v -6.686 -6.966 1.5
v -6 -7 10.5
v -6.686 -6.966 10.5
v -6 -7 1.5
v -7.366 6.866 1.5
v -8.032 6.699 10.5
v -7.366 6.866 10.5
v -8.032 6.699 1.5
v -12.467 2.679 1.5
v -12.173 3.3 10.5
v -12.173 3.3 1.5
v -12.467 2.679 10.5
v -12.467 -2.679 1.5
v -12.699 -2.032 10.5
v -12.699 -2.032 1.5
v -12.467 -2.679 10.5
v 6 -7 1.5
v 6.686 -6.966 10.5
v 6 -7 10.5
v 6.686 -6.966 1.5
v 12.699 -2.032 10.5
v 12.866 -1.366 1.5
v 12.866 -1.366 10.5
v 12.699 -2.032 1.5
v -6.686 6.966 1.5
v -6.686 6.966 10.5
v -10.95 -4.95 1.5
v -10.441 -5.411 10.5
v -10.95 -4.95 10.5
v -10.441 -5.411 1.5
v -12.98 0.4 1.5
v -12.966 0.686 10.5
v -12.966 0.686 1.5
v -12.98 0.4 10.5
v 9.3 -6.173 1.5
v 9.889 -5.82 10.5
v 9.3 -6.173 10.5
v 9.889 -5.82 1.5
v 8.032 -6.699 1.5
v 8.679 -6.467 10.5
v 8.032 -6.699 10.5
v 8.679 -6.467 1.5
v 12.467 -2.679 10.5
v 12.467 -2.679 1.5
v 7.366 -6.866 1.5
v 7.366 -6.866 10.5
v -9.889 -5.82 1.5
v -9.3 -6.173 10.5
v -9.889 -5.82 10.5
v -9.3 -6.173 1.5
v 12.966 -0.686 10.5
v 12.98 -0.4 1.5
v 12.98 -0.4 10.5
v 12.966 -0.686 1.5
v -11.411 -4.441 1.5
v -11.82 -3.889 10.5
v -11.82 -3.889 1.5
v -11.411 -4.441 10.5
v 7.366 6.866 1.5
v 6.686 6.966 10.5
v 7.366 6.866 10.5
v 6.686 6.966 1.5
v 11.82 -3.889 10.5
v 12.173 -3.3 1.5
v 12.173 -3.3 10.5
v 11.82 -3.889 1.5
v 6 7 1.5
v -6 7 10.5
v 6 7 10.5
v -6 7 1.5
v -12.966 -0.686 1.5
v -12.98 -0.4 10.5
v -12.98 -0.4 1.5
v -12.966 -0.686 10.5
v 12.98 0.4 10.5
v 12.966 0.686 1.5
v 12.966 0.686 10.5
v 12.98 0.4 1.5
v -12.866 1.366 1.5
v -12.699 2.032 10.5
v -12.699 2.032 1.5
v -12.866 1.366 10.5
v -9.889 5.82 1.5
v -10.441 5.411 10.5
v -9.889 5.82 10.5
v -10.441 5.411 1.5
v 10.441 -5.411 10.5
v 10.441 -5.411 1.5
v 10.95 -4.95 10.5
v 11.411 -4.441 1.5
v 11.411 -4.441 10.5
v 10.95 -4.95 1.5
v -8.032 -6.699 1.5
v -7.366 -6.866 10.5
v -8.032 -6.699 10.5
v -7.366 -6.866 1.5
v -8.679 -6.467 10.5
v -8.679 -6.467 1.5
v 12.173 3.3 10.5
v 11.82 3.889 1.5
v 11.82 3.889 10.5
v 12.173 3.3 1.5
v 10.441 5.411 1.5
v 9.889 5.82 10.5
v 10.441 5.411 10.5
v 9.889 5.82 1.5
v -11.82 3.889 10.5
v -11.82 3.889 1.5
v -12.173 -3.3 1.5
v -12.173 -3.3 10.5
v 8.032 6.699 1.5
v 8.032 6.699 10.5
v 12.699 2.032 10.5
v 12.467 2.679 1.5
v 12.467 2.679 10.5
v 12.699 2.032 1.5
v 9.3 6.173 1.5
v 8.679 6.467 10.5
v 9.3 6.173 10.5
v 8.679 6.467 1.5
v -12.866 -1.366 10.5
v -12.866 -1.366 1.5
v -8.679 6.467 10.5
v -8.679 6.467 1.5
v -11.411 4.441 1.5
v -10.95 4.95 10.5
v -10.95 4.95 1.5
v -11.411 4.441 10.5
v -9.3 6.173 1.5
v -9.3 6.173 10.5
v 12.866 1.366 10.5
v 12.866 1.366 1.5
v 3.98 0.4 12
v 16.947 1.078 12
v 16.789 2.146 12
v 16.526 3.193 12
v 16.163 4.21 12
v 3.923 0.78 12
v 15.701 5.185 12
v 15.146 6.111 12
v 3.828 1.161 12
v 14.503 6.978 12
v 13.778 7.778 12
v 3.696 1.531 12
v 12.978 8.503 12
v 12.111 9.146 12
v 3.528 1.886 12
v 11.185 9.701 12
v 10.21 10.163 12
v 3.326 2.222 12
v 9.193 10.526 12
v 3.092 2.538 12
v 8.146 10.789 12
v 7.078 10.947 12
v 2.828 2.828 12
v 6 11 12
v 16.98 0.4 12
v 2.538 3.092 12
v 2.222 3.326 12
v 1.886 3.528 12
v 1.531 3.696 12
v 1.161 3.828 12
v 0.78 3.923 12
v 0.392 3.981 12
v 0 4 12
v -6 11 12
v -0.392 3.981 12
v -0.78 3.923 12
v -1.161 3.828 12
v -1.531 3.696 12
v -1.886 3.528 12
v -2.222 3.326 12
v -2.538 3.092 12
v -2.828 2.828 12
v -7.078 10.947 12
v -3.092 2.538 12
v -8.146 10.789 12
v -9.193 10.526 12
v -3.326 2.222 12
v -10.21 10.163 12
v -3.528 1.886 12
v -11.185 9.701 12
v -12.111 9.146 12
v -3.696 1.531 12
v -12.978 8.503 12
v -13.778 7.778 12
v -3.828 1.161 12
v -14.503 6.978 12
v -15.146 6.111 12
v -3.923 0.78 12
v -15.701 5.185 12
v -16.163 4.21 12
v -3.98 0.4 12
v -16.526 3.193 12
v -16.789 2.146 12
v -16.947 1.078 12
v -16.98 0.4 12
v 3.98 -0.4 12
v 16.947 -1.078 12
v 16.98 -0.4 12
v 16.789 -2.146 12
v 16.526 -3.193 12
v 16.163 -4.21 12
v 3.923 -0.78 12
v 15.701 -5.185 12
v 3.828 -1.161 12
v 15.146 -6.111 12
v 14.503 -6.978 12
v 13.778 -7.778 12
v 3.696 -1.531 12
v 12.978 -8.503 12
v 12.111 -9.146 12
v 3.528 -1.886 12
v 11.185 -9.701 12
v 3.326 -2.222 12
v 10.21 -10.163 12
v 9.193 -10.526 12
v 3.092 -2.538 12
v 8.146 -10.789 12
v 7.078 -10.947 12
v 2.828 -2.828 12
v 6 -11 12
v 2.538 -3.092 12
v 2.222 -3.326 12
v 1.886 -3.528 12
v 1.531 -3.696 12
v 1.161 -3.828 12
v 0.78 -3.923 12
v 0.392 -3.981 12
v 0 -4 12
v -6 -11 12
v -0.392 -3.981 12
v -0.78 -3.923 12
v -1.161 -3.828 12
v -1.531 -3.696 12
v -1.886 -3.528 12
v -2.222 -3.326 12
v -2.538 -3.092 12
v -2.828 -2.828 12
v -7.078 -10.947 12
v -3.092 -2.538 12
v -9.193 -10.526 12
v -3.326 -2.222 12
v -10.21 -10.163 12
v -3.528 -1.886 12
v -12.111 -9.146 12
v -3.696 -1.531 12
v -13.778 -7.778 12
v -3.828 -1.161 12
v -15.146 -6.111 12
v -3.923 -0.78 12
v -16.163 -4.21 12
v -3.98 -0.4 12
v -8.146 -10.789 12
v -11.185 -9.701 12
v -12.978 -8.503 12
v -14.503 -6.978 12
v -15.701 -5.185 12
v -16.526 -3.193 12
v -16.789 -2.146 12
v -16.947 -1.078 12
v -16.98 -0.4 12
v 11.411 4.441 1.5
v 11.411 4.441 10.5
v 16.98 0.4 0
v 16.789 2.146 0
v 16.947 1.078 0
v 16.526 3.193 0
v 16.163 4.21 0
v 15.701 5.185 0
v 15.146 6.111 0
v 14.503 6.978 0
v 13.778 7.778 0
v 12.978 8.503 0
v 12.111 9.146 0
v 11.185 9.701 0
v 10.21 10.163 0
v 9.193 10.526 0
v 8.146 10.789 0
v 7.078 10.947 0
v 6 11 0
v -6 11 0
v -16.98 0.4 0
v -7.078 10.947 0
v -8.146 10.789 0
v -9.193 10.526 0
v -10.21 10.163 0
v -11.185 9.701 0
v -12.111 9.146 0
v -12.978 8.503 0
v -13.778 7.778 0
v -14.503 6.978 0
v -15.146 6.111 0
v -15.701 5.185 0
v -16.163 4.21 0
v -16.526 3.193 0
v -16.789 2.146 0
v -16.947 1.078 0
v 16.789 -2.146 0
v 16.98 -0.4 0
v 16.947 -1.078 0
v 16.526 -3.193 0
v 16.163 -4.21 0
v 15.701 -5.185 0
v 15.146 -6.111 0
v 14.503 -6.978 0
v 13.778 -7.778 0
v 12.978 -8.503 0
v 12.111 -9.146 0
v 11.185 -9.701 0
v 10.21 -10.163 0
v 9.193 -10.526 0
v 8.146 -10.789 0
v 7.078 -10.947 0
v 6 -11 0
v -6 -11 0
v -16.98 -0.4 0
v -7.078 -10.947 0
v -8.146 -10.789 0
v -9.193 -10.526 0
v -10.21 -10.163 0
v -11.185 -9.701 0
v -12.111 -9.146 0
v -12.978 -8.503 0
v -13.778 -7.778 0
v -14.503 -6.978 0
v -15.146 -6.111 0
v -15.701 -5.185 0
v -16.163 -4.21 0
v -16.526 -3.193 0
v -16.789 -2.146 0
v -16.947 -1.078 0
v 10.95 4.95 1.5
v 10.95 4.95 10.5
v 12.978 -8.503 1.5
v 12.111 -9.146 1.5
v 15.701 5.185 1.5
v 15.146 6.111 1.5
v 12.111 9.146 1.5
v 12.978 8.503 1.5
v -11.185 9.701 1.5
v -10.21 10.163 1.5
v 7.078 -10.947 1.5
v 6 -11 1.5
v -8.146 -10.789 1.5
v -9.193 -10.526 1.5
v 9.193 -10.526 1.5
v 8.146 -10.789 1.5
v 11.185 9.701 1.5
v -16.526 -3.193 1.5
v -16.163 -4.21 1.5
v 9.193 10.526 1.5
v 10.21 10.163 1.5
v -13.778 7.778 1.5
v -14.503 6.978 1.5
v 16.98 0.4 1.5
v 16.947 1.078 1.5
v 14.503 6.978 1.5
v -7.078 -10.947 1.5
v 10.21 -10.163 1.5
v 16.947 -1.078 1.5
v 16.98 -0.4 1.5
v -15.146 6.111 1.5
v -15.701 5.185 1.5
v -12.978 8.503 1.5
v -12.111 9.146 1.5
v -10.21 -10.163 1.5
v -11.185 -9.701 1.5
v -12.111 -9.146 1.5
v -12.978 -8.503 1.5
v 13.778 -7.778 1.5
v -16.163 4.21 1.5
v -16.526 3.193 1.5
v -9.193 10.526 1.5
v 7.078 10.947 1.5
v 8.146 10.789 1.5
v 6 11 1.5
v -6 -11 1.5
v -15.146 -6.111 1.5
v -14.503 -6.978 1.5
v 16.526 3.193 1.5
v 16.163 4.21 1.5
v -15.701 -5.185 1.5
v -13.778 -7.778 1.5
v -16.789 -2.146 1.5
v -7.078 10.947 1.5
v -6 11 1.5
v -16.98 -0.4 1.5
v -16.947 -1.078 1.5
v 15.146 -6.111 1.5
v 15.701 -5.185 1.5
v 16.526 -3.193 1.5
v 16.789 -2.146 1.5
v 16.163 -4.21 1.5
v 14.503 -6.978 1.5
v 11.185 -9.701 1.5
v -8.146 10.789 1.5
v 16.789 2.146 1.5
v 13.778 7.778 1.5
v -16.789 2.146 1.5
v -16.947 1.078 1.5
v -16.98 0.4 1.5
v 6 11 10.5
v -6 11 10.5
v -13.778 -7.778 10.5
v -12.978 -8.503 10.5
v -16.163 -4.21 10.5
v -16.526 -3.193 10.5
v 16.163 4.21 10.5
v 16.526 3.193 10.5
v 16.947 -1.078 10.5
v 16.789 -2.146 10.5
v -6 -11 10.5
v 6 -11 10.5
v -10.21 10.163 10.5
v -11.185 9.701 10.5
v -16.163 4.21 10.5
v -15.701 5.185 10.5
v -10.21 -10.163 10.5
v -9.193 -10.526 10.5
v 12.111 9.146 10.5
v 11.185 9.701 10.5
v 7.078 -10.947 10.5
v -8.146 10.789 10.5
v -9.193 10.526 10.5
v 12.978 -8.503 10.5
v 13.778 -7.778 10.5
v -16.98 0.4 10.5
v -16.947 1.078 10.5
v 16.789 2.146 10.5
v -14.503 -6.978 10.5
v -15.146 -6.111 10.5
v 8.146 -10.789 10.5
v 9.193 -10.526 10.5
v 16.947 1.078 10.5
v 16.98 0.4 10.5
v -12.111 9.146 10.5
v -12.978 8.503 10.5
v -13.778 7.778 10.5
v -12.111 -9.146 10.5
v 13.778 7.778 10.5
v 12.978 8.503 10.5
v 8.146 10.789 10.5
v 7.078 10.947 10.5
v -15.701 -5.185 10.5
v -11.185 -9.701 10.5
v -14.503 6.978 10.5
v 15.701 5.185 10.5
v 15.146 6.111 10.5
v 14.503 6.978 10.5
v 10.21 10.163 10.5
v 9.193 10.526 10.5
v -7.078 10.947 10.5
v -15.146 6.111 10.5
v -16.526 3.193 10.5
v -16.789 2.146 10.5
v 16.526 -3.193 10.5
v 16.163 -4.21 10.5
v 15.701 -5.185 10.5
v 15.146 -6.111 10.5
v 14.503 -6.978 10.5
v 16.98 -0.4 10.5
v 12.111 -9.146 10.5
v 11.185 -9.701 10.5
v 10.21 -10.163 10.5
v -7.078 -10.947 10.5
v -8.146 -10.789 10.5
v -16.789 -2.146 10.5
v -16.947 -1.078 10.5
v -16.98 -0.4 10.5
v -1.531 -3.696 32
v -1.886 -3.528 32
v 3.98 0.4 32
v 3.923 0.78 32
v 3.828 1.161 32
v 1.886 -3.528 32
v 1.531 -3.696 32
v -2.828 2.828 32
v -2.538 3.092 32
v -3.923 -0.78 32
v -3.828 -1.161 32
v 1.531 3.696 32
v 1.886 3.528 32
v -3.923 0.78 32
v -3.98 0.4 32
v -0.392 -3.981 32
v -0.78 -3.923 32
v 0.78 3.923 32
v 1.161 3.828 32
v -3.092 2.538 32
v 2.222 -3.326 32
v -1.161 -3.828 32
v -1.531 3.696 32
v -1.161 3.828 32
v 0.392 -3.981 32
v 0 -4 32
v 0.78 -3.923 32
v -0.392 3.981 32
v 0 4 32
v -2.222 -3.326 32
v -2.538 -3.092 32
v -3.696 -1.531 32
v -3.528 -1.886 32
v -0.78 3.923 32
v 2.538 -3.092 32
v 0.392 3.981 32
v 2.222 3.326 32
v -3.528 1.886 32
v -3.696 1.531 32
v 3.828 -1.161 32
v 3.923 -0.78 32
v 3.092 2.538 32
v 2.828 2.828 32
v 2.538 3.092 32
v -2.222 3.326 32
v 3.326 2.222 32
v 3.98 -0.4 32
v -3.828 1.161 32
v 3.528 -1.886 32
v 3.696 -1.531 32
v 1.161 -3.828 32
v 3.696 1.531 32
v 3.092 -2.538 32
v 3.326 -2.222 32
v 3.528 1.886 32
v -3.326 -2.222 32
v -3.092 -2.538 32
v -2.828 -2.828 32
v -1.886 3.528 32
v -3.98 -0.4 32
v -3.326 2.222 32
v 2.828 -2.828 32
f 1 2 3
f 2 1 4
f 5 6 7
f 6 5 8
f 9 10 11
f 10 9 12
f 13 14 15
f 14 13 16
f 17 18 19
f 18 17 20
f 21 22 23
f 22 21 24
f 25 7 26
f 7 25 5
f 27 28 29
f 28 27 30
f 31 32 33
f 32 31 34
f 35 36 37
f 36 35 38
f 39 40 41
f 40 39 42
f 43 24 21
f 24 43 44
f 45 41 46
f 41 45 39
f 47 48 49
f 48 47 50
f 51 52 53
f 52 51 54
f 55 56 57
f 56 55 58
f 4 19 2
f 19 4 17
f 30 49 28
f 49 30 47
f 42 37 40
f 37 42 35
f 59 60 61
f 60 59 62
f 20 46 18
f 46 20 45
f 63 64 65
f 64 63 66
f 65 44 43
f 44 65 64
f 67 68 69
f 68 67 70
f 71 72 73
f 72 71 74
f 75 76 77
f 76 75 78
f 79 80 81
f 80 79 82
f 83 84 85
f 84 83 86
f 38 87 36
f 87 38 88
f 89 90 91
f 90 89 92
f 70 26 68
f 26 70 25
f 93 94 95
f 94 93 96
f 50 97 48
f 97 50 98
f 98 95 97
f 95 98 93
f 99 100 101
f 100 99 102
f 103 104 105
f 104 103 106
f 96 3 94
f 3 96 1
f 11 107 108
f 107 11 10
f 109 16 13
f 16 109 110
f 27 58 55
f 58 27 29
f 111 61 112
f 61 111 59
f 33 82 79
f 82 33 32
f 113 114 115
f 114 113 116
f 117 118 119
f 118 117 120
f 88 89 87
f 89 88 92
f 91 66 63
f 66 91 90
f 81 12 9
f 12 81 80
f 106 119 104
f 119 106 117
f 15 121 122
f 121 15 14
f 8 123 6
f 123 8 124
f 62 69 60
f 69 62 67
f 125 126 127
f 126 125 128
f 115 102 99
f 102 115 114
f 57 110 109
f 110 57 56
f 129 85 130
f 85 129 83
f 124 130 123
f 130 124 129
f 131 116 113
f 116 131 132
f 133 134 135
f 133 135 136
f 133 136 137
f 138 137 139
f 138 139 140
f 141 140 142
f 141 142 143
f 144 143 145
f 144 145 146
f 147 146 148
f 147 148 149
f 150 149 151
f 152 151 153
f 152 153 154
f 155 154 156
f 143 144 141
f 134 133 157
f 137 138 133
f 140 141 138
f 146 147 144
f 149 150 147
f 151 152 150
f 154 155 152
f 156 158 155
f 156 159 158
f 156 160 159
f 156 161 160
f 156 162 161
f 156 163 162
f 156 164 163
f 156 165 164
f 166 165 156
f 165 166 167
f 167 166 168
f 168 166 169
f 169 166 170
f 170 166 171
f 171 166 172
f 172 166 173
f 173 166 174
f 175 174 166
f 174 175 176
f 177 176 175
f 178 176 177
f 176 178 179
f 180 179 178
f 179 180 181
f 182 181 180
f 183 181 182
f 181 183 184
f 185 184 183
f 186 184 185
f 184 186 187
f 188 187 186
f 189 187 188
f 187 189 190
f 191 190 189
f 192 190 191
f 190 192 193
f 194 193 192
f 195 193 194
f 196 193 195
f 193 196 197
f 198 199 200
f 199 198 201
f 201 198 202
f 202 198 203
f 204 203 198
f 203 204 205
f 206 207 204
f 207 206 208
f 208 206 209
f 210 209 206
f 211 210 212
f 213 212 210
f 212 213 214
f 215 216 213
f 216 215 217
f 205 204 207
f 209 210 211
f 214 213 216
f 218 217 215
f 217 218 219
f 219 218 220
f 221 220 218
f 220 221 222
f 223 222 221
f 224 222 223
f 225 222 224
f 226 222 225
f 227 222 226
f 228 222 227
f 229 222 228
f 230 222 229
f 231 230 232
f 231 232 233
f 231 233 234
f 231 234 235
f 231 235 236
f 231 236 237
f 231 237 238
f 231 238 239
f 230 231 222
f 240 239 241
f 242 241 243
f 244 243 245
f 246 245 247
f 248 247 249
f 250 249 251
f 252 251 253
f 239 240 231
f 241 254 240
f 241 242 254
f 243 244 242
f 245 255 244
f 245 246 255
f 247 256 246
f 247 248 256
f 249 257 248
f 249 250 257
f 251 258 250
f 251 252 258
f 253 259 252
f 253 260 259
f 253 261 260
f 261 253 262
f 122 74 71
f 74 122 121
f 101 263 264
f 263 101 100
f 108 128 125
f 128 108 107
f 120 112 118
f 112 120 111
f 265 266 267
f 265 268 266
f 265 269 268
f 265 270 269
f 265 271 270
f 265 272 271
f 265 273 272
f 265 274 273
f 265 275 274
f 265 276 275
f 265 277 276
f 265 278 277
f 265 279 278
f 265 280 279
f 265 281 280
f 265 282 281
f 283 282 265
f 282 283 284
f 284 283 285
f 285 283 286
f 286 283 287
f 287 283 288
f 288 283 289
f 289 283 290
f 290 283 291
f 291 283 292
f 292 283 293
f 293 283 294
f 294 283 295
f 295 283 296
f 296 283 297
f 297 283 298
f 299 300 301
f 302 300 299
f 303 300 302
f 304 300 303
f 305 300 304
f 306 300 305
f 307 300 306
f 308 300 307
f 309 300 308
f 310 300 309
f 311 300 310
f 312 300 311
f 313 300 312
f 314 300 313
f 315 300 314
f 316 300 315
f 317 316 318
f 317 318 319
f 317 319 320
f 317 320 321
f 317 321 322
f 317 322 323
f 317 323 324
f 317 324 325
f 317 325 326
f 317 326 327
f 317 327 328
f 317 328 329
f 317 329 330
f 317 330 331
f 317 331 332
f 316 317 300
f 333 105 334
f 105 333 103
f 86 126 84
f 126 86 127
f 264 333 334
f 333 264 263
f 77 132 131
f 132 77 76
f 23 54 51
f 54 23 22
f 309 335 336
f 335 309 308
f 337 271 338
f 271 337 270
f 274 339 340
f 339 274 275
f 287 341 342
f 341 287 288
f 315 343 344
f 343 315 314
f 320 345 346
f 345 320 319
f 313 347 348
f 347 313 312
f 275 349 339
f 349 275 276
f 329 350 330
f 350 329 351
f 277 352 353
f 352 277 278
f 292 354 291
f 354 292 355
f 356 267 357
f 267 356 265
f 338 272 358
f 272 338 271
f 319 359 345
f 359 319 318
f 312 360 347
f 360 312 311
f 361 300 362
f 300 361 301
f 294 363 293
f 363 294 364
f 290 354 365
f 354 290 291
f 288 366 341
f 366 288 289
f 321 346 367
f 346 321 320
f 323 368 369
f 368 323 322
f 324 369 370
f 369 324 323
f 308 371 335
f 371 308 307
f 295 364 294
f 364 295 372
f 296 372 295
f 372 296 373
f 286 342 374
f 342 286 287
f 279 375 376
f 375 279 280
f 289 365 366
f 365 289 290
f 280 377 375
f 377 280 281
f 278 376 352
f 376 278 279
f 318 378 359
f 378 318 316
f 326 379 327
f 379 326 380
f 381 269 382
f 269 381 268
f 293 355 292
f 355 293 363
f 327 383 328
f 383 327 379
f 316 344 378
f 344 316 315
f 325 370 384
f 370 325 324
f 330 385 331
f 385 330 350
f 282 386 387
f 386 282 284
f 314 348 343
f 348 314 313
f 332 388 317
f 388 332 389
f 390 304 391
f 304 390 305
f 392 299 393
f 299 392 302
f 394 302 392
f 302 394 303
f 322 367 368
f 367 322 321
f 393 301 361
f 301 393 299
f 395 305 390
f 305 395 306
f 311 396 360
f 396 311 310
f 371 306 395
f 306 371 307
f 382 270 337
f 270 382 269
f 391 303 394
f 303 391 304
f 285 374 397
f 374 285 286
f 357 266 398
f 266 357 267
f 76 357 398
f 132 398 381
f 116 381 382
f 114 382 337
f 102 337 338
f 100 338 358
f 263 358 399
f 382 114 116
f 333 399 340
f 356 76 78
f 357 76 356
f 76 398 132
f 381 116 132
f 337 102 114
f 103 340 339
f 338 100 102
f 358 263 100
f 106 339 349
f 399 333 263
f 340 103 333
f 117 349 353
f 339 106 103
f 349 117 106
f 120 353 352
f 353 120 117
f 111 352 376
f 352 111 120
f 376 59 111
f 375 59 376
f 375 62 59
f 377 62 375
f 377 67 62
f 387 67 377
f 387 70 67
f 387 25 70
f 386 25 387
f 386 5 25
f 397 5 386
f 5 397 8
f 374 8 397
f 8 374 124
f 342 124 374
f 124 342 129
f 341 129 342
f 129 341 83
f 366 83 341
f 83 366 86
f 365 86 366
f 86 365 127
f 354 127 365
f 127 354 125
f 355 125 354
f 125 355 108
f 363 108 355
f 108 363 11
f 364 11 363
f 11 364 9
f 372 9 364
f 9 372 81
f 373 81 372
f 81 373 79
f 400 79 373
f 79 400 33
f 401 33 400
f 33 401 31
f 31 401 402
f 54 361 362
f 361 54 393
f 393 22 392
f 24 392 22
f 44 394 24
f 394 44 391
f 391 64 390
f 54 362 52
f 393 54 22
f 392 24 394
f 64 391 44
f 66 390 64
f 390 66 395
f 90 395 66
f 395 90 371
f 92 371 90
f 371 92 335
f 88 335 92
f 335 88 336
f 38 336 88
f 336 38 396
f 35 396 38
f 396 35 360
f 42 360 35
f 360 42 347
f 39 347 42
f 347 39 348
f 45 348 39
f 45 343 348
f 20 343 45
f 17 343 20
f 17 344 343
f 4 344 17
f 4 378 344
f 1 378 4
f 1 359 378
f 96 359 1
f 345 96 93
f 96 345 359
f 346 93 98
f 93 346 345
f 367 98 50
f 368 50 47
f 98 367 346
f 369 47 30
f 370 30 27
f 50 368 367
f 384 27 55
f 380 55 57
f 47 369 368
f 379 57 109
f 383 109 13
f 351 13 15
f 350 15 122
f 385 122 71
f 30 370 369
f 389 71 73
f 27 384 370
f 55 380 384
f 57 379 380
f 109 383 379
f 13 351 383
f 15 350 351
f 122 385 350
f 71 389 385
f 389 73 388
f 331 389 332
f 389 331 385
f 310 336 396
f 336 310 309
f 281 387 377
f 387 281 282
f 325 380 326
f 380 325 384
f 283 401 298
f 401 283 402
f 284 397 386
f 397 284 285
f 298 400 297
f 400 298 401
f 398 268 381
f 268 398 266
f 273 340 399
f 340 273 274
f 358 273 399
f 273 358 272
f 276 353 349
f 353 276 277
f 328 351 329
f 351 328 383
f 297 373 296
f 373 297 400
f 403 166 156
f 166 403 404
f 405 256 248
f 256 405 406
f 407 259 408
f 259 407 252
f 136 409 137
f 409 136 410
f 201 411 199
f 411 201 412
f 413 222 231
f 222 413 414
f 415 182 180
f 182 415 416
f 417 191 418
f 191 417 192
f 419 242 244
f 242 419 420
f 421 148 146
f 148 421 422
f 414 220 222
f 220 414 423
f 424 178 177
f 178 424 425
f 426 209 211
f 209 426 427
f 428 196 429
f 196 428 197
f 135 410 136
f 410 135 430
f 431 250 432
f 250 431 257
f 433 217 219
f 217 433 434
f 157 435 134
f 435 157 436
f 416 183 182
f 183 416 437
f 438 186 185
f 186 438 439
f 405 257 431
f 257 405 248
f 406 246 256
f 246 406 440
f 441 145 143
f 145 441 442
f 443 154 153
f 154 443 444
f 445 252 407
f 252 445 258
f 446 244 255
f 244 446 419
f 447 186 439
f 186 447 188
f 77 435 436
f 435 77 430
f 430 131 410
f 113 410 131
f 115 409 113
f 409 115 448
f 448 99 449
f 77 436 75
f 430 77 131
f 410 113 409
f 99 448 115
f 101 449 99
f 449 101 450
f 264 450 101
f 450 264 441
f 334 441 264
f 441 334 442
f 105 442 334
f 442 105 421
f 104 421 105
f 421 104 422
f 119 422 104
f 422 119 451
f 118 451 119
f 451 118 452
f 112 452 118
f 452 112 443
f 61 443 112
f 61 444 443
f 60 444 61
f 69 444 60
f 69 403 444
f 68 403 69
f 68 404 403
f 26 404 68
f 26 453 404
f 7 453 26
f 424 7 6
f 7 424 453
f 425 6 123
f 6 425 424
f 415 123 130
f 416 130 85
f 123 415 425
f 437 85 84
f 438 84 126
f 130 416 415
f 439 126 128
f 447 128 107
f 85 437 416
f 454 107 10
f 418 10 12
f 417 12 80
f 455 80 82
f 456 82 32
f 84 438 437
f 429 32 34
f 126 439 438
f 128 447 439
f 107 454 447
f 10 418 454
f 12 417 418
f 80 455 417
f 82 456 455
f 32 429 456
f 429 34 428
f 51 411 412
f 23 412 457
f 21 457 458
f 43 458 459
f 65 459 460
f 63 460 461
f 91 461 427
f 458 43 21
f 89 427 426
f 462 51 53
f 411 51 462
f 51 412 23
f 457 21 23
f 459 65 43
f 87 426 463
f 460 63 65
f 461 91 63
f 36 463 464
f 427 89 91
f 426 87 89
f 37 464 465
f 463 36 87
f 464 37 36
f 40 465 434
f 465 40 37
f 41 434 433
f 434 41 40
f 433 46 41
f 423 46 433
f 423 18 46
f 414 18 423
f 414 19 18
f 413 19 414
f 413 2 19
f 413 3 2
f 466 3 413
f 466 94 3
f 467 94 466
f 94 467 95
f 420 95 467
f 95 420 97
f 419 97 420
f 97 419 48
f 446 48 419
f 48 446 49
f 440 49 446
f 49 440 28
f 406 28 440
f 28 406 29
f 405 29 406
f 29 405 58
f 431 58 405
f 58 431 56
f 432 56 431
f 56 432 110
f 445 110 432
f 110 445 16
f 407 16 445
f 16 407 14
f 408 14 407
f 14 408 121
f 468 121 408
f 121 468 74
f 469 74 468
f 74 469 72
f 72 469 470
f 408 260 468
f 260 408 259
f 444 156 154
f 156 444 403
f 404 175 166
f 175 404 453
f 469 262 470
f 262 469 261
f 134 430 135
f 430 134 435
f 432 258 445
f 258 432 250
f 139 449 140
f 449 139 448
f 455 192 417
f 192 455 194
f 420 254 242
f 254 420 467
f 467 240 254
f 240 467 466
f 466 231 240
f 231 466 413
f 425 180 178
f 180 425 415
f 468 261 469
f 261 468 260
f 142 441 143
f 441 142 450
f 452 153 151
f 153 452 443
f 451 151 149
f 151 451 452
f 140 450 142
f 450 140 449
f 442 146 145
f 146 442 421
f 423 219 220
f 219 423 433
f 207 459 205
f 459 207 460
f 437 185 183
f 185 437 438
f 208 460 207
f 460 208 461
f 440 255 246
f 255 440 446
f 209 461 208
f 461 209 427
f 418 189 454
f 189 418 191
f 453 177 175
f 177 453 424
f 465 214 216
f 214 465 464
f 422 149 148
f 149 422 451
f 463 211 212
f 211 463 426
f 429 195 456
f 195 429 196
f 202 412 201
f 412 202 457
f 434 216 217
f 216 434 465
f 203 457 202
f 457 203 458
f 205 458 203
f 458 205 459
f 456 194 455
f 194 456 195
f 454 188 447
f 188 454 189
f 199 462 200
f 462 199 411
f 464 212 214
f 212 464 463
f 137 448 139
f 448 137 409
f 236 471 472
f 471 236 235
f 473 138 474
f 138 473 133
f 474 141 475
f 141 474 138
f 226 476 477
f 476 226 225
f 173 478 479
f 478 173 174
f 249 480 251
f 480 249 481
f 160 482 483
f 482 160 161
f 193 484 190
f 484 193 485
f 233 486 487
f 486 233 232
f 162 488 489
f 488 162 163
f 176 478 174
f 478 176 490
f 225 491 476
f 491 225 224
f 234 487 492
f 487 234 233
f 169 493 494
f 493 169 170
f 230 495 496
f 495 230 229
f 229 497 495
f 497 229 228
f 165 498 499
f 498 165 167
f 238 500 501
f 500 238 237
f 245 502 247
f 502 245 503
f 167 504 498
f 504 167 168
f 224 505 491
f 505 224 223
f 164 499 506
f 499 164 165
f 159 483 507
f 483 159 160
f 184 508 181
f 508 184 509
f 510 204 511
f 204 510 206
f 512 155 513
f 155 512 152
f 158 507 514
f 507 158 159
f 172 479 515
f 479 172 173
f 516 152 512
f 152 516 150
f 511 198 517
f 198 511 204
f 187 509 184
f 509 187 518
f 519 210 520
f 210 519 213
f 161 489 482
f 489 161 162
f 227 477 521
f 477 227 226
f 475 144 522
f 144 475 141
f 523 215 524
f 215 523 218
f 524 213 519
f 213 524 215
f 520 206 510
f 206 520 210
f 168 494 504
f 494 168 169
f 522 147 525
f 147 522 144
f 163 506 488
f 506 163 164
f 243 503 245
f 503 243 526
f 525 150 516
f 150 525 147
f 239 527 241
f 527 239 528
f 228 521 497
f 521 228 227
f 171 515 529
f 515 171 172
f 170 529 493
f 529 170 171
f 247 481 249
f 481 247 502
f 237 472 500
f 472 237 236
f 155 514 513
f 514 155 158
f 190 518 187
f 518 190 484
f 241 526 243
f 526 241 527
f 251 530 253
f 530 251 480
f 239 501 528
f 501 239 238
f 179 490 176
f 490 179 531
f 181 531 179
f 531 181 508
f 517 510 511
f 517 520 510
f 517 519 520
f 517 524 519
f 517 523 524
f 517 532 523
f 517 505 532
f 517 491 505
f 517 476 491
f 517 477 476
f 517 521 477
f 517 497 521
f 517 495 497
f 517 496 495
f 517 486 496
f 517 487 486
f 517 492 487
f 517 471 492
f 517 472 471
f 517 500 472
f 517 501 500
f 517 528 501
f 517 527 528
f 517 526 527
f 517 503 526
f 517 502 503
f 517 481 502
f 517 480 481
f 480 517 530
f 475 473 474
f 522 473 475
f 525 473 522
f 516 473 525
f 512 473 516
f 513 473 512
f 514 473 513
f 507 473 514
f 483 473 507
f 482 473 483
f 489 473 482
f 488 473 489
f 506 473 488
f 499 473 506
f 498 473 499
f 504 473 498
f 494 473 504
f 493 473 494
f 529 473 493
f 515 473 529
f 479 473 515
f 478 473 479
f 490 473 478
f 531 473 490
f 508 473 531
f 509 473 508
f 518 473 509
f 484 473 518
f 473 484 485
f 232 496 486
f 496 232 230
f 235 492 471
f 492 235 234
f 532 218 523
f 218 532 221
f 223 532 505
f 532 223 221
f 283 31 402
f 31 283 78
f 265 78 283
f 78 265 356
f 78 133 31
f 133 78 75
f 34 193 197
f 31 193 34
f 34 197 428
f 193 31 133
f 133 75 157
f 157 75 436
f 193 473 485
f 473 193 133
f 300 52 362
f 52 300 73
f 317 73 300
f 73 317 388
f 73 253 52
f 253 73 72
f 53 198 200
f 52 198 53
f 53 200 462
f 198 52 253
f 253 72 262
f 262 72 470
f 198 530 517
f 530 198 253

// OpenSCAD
// file: parameters.scad
// AFPM-Desk-v1 shared parameters (mm)
// Desktop axial-flux PM learning generator — Faraday induction education only.

$fn = 64;

// --- Magnets (N42 Neo discs) ---
magnet_d = 20;
magnet_h = 3;
magnet_count = 8;
magnet_pcd = 70; // pitch circle diameter

// --- Rotor ---
rotor_od = 100;
rotor_id = 12; // shaft clearance / hub seat
rotor_thickness = 6;
magnet_pocket_clearance = 0.3;
magnet_pocket_depth = magnet_h + 0.2;

// --- Stator ---
stator_od = 110;
stator_id = 30;
stator_thickness = 8;
coil_count = 6;
coil_slot_w = 22;
coil_slot_h = 18;
coil_slot_depth = 6;
coil_pcd = 70;

// --- Shaft / bearings ---
shaft_d = 8;
bearing_od = 22; // 608 skate bearing
bearing_id = 8;
bearing_h = 7;
bearing_seat_od = bearing_od + 0.2;

// --- Base ---
base_w = 160;
base_d = 140;
base_h = 8;
post_h = 55;

// --- Crank ---
crank_arm_len = 80;
crank_arm_w = 16;
crank_arm_t = 8;
handle_d = 12;
handle_len = 40;

// --- Electronics tray ---
tray_w = 70;
tray_d = 50;
tray_h = 12;
// main file
include <parameters.scad>

module coil_former() {
  difference() {
    union() {
      hull() {
        translate([-6, 0, 0]) cylinder(h=12, d=14);
        translate([6, 0, 0]) cylinder(h=12, d=14);
      }
      hull() {
        translate([-6, 0, 0]) cylinder(h=1.5, d=22);
        translate([6, 0, 0]) cylinder(h=1.5, d=22);
      }
      hull() {
        translate([-6, 0, 10.5]) cylinder(h=1.5, d=22);
        translate([6, 0, 10.5]) cylinder(h=1.5, d=22);
      }
      translate([0, 0, 12])
        cylinder(h=20, d=8);
    }
    translate([-20, -0.4, -0.1])
      cube([40, 0.8, 35]);
  }
}

coil_former();
